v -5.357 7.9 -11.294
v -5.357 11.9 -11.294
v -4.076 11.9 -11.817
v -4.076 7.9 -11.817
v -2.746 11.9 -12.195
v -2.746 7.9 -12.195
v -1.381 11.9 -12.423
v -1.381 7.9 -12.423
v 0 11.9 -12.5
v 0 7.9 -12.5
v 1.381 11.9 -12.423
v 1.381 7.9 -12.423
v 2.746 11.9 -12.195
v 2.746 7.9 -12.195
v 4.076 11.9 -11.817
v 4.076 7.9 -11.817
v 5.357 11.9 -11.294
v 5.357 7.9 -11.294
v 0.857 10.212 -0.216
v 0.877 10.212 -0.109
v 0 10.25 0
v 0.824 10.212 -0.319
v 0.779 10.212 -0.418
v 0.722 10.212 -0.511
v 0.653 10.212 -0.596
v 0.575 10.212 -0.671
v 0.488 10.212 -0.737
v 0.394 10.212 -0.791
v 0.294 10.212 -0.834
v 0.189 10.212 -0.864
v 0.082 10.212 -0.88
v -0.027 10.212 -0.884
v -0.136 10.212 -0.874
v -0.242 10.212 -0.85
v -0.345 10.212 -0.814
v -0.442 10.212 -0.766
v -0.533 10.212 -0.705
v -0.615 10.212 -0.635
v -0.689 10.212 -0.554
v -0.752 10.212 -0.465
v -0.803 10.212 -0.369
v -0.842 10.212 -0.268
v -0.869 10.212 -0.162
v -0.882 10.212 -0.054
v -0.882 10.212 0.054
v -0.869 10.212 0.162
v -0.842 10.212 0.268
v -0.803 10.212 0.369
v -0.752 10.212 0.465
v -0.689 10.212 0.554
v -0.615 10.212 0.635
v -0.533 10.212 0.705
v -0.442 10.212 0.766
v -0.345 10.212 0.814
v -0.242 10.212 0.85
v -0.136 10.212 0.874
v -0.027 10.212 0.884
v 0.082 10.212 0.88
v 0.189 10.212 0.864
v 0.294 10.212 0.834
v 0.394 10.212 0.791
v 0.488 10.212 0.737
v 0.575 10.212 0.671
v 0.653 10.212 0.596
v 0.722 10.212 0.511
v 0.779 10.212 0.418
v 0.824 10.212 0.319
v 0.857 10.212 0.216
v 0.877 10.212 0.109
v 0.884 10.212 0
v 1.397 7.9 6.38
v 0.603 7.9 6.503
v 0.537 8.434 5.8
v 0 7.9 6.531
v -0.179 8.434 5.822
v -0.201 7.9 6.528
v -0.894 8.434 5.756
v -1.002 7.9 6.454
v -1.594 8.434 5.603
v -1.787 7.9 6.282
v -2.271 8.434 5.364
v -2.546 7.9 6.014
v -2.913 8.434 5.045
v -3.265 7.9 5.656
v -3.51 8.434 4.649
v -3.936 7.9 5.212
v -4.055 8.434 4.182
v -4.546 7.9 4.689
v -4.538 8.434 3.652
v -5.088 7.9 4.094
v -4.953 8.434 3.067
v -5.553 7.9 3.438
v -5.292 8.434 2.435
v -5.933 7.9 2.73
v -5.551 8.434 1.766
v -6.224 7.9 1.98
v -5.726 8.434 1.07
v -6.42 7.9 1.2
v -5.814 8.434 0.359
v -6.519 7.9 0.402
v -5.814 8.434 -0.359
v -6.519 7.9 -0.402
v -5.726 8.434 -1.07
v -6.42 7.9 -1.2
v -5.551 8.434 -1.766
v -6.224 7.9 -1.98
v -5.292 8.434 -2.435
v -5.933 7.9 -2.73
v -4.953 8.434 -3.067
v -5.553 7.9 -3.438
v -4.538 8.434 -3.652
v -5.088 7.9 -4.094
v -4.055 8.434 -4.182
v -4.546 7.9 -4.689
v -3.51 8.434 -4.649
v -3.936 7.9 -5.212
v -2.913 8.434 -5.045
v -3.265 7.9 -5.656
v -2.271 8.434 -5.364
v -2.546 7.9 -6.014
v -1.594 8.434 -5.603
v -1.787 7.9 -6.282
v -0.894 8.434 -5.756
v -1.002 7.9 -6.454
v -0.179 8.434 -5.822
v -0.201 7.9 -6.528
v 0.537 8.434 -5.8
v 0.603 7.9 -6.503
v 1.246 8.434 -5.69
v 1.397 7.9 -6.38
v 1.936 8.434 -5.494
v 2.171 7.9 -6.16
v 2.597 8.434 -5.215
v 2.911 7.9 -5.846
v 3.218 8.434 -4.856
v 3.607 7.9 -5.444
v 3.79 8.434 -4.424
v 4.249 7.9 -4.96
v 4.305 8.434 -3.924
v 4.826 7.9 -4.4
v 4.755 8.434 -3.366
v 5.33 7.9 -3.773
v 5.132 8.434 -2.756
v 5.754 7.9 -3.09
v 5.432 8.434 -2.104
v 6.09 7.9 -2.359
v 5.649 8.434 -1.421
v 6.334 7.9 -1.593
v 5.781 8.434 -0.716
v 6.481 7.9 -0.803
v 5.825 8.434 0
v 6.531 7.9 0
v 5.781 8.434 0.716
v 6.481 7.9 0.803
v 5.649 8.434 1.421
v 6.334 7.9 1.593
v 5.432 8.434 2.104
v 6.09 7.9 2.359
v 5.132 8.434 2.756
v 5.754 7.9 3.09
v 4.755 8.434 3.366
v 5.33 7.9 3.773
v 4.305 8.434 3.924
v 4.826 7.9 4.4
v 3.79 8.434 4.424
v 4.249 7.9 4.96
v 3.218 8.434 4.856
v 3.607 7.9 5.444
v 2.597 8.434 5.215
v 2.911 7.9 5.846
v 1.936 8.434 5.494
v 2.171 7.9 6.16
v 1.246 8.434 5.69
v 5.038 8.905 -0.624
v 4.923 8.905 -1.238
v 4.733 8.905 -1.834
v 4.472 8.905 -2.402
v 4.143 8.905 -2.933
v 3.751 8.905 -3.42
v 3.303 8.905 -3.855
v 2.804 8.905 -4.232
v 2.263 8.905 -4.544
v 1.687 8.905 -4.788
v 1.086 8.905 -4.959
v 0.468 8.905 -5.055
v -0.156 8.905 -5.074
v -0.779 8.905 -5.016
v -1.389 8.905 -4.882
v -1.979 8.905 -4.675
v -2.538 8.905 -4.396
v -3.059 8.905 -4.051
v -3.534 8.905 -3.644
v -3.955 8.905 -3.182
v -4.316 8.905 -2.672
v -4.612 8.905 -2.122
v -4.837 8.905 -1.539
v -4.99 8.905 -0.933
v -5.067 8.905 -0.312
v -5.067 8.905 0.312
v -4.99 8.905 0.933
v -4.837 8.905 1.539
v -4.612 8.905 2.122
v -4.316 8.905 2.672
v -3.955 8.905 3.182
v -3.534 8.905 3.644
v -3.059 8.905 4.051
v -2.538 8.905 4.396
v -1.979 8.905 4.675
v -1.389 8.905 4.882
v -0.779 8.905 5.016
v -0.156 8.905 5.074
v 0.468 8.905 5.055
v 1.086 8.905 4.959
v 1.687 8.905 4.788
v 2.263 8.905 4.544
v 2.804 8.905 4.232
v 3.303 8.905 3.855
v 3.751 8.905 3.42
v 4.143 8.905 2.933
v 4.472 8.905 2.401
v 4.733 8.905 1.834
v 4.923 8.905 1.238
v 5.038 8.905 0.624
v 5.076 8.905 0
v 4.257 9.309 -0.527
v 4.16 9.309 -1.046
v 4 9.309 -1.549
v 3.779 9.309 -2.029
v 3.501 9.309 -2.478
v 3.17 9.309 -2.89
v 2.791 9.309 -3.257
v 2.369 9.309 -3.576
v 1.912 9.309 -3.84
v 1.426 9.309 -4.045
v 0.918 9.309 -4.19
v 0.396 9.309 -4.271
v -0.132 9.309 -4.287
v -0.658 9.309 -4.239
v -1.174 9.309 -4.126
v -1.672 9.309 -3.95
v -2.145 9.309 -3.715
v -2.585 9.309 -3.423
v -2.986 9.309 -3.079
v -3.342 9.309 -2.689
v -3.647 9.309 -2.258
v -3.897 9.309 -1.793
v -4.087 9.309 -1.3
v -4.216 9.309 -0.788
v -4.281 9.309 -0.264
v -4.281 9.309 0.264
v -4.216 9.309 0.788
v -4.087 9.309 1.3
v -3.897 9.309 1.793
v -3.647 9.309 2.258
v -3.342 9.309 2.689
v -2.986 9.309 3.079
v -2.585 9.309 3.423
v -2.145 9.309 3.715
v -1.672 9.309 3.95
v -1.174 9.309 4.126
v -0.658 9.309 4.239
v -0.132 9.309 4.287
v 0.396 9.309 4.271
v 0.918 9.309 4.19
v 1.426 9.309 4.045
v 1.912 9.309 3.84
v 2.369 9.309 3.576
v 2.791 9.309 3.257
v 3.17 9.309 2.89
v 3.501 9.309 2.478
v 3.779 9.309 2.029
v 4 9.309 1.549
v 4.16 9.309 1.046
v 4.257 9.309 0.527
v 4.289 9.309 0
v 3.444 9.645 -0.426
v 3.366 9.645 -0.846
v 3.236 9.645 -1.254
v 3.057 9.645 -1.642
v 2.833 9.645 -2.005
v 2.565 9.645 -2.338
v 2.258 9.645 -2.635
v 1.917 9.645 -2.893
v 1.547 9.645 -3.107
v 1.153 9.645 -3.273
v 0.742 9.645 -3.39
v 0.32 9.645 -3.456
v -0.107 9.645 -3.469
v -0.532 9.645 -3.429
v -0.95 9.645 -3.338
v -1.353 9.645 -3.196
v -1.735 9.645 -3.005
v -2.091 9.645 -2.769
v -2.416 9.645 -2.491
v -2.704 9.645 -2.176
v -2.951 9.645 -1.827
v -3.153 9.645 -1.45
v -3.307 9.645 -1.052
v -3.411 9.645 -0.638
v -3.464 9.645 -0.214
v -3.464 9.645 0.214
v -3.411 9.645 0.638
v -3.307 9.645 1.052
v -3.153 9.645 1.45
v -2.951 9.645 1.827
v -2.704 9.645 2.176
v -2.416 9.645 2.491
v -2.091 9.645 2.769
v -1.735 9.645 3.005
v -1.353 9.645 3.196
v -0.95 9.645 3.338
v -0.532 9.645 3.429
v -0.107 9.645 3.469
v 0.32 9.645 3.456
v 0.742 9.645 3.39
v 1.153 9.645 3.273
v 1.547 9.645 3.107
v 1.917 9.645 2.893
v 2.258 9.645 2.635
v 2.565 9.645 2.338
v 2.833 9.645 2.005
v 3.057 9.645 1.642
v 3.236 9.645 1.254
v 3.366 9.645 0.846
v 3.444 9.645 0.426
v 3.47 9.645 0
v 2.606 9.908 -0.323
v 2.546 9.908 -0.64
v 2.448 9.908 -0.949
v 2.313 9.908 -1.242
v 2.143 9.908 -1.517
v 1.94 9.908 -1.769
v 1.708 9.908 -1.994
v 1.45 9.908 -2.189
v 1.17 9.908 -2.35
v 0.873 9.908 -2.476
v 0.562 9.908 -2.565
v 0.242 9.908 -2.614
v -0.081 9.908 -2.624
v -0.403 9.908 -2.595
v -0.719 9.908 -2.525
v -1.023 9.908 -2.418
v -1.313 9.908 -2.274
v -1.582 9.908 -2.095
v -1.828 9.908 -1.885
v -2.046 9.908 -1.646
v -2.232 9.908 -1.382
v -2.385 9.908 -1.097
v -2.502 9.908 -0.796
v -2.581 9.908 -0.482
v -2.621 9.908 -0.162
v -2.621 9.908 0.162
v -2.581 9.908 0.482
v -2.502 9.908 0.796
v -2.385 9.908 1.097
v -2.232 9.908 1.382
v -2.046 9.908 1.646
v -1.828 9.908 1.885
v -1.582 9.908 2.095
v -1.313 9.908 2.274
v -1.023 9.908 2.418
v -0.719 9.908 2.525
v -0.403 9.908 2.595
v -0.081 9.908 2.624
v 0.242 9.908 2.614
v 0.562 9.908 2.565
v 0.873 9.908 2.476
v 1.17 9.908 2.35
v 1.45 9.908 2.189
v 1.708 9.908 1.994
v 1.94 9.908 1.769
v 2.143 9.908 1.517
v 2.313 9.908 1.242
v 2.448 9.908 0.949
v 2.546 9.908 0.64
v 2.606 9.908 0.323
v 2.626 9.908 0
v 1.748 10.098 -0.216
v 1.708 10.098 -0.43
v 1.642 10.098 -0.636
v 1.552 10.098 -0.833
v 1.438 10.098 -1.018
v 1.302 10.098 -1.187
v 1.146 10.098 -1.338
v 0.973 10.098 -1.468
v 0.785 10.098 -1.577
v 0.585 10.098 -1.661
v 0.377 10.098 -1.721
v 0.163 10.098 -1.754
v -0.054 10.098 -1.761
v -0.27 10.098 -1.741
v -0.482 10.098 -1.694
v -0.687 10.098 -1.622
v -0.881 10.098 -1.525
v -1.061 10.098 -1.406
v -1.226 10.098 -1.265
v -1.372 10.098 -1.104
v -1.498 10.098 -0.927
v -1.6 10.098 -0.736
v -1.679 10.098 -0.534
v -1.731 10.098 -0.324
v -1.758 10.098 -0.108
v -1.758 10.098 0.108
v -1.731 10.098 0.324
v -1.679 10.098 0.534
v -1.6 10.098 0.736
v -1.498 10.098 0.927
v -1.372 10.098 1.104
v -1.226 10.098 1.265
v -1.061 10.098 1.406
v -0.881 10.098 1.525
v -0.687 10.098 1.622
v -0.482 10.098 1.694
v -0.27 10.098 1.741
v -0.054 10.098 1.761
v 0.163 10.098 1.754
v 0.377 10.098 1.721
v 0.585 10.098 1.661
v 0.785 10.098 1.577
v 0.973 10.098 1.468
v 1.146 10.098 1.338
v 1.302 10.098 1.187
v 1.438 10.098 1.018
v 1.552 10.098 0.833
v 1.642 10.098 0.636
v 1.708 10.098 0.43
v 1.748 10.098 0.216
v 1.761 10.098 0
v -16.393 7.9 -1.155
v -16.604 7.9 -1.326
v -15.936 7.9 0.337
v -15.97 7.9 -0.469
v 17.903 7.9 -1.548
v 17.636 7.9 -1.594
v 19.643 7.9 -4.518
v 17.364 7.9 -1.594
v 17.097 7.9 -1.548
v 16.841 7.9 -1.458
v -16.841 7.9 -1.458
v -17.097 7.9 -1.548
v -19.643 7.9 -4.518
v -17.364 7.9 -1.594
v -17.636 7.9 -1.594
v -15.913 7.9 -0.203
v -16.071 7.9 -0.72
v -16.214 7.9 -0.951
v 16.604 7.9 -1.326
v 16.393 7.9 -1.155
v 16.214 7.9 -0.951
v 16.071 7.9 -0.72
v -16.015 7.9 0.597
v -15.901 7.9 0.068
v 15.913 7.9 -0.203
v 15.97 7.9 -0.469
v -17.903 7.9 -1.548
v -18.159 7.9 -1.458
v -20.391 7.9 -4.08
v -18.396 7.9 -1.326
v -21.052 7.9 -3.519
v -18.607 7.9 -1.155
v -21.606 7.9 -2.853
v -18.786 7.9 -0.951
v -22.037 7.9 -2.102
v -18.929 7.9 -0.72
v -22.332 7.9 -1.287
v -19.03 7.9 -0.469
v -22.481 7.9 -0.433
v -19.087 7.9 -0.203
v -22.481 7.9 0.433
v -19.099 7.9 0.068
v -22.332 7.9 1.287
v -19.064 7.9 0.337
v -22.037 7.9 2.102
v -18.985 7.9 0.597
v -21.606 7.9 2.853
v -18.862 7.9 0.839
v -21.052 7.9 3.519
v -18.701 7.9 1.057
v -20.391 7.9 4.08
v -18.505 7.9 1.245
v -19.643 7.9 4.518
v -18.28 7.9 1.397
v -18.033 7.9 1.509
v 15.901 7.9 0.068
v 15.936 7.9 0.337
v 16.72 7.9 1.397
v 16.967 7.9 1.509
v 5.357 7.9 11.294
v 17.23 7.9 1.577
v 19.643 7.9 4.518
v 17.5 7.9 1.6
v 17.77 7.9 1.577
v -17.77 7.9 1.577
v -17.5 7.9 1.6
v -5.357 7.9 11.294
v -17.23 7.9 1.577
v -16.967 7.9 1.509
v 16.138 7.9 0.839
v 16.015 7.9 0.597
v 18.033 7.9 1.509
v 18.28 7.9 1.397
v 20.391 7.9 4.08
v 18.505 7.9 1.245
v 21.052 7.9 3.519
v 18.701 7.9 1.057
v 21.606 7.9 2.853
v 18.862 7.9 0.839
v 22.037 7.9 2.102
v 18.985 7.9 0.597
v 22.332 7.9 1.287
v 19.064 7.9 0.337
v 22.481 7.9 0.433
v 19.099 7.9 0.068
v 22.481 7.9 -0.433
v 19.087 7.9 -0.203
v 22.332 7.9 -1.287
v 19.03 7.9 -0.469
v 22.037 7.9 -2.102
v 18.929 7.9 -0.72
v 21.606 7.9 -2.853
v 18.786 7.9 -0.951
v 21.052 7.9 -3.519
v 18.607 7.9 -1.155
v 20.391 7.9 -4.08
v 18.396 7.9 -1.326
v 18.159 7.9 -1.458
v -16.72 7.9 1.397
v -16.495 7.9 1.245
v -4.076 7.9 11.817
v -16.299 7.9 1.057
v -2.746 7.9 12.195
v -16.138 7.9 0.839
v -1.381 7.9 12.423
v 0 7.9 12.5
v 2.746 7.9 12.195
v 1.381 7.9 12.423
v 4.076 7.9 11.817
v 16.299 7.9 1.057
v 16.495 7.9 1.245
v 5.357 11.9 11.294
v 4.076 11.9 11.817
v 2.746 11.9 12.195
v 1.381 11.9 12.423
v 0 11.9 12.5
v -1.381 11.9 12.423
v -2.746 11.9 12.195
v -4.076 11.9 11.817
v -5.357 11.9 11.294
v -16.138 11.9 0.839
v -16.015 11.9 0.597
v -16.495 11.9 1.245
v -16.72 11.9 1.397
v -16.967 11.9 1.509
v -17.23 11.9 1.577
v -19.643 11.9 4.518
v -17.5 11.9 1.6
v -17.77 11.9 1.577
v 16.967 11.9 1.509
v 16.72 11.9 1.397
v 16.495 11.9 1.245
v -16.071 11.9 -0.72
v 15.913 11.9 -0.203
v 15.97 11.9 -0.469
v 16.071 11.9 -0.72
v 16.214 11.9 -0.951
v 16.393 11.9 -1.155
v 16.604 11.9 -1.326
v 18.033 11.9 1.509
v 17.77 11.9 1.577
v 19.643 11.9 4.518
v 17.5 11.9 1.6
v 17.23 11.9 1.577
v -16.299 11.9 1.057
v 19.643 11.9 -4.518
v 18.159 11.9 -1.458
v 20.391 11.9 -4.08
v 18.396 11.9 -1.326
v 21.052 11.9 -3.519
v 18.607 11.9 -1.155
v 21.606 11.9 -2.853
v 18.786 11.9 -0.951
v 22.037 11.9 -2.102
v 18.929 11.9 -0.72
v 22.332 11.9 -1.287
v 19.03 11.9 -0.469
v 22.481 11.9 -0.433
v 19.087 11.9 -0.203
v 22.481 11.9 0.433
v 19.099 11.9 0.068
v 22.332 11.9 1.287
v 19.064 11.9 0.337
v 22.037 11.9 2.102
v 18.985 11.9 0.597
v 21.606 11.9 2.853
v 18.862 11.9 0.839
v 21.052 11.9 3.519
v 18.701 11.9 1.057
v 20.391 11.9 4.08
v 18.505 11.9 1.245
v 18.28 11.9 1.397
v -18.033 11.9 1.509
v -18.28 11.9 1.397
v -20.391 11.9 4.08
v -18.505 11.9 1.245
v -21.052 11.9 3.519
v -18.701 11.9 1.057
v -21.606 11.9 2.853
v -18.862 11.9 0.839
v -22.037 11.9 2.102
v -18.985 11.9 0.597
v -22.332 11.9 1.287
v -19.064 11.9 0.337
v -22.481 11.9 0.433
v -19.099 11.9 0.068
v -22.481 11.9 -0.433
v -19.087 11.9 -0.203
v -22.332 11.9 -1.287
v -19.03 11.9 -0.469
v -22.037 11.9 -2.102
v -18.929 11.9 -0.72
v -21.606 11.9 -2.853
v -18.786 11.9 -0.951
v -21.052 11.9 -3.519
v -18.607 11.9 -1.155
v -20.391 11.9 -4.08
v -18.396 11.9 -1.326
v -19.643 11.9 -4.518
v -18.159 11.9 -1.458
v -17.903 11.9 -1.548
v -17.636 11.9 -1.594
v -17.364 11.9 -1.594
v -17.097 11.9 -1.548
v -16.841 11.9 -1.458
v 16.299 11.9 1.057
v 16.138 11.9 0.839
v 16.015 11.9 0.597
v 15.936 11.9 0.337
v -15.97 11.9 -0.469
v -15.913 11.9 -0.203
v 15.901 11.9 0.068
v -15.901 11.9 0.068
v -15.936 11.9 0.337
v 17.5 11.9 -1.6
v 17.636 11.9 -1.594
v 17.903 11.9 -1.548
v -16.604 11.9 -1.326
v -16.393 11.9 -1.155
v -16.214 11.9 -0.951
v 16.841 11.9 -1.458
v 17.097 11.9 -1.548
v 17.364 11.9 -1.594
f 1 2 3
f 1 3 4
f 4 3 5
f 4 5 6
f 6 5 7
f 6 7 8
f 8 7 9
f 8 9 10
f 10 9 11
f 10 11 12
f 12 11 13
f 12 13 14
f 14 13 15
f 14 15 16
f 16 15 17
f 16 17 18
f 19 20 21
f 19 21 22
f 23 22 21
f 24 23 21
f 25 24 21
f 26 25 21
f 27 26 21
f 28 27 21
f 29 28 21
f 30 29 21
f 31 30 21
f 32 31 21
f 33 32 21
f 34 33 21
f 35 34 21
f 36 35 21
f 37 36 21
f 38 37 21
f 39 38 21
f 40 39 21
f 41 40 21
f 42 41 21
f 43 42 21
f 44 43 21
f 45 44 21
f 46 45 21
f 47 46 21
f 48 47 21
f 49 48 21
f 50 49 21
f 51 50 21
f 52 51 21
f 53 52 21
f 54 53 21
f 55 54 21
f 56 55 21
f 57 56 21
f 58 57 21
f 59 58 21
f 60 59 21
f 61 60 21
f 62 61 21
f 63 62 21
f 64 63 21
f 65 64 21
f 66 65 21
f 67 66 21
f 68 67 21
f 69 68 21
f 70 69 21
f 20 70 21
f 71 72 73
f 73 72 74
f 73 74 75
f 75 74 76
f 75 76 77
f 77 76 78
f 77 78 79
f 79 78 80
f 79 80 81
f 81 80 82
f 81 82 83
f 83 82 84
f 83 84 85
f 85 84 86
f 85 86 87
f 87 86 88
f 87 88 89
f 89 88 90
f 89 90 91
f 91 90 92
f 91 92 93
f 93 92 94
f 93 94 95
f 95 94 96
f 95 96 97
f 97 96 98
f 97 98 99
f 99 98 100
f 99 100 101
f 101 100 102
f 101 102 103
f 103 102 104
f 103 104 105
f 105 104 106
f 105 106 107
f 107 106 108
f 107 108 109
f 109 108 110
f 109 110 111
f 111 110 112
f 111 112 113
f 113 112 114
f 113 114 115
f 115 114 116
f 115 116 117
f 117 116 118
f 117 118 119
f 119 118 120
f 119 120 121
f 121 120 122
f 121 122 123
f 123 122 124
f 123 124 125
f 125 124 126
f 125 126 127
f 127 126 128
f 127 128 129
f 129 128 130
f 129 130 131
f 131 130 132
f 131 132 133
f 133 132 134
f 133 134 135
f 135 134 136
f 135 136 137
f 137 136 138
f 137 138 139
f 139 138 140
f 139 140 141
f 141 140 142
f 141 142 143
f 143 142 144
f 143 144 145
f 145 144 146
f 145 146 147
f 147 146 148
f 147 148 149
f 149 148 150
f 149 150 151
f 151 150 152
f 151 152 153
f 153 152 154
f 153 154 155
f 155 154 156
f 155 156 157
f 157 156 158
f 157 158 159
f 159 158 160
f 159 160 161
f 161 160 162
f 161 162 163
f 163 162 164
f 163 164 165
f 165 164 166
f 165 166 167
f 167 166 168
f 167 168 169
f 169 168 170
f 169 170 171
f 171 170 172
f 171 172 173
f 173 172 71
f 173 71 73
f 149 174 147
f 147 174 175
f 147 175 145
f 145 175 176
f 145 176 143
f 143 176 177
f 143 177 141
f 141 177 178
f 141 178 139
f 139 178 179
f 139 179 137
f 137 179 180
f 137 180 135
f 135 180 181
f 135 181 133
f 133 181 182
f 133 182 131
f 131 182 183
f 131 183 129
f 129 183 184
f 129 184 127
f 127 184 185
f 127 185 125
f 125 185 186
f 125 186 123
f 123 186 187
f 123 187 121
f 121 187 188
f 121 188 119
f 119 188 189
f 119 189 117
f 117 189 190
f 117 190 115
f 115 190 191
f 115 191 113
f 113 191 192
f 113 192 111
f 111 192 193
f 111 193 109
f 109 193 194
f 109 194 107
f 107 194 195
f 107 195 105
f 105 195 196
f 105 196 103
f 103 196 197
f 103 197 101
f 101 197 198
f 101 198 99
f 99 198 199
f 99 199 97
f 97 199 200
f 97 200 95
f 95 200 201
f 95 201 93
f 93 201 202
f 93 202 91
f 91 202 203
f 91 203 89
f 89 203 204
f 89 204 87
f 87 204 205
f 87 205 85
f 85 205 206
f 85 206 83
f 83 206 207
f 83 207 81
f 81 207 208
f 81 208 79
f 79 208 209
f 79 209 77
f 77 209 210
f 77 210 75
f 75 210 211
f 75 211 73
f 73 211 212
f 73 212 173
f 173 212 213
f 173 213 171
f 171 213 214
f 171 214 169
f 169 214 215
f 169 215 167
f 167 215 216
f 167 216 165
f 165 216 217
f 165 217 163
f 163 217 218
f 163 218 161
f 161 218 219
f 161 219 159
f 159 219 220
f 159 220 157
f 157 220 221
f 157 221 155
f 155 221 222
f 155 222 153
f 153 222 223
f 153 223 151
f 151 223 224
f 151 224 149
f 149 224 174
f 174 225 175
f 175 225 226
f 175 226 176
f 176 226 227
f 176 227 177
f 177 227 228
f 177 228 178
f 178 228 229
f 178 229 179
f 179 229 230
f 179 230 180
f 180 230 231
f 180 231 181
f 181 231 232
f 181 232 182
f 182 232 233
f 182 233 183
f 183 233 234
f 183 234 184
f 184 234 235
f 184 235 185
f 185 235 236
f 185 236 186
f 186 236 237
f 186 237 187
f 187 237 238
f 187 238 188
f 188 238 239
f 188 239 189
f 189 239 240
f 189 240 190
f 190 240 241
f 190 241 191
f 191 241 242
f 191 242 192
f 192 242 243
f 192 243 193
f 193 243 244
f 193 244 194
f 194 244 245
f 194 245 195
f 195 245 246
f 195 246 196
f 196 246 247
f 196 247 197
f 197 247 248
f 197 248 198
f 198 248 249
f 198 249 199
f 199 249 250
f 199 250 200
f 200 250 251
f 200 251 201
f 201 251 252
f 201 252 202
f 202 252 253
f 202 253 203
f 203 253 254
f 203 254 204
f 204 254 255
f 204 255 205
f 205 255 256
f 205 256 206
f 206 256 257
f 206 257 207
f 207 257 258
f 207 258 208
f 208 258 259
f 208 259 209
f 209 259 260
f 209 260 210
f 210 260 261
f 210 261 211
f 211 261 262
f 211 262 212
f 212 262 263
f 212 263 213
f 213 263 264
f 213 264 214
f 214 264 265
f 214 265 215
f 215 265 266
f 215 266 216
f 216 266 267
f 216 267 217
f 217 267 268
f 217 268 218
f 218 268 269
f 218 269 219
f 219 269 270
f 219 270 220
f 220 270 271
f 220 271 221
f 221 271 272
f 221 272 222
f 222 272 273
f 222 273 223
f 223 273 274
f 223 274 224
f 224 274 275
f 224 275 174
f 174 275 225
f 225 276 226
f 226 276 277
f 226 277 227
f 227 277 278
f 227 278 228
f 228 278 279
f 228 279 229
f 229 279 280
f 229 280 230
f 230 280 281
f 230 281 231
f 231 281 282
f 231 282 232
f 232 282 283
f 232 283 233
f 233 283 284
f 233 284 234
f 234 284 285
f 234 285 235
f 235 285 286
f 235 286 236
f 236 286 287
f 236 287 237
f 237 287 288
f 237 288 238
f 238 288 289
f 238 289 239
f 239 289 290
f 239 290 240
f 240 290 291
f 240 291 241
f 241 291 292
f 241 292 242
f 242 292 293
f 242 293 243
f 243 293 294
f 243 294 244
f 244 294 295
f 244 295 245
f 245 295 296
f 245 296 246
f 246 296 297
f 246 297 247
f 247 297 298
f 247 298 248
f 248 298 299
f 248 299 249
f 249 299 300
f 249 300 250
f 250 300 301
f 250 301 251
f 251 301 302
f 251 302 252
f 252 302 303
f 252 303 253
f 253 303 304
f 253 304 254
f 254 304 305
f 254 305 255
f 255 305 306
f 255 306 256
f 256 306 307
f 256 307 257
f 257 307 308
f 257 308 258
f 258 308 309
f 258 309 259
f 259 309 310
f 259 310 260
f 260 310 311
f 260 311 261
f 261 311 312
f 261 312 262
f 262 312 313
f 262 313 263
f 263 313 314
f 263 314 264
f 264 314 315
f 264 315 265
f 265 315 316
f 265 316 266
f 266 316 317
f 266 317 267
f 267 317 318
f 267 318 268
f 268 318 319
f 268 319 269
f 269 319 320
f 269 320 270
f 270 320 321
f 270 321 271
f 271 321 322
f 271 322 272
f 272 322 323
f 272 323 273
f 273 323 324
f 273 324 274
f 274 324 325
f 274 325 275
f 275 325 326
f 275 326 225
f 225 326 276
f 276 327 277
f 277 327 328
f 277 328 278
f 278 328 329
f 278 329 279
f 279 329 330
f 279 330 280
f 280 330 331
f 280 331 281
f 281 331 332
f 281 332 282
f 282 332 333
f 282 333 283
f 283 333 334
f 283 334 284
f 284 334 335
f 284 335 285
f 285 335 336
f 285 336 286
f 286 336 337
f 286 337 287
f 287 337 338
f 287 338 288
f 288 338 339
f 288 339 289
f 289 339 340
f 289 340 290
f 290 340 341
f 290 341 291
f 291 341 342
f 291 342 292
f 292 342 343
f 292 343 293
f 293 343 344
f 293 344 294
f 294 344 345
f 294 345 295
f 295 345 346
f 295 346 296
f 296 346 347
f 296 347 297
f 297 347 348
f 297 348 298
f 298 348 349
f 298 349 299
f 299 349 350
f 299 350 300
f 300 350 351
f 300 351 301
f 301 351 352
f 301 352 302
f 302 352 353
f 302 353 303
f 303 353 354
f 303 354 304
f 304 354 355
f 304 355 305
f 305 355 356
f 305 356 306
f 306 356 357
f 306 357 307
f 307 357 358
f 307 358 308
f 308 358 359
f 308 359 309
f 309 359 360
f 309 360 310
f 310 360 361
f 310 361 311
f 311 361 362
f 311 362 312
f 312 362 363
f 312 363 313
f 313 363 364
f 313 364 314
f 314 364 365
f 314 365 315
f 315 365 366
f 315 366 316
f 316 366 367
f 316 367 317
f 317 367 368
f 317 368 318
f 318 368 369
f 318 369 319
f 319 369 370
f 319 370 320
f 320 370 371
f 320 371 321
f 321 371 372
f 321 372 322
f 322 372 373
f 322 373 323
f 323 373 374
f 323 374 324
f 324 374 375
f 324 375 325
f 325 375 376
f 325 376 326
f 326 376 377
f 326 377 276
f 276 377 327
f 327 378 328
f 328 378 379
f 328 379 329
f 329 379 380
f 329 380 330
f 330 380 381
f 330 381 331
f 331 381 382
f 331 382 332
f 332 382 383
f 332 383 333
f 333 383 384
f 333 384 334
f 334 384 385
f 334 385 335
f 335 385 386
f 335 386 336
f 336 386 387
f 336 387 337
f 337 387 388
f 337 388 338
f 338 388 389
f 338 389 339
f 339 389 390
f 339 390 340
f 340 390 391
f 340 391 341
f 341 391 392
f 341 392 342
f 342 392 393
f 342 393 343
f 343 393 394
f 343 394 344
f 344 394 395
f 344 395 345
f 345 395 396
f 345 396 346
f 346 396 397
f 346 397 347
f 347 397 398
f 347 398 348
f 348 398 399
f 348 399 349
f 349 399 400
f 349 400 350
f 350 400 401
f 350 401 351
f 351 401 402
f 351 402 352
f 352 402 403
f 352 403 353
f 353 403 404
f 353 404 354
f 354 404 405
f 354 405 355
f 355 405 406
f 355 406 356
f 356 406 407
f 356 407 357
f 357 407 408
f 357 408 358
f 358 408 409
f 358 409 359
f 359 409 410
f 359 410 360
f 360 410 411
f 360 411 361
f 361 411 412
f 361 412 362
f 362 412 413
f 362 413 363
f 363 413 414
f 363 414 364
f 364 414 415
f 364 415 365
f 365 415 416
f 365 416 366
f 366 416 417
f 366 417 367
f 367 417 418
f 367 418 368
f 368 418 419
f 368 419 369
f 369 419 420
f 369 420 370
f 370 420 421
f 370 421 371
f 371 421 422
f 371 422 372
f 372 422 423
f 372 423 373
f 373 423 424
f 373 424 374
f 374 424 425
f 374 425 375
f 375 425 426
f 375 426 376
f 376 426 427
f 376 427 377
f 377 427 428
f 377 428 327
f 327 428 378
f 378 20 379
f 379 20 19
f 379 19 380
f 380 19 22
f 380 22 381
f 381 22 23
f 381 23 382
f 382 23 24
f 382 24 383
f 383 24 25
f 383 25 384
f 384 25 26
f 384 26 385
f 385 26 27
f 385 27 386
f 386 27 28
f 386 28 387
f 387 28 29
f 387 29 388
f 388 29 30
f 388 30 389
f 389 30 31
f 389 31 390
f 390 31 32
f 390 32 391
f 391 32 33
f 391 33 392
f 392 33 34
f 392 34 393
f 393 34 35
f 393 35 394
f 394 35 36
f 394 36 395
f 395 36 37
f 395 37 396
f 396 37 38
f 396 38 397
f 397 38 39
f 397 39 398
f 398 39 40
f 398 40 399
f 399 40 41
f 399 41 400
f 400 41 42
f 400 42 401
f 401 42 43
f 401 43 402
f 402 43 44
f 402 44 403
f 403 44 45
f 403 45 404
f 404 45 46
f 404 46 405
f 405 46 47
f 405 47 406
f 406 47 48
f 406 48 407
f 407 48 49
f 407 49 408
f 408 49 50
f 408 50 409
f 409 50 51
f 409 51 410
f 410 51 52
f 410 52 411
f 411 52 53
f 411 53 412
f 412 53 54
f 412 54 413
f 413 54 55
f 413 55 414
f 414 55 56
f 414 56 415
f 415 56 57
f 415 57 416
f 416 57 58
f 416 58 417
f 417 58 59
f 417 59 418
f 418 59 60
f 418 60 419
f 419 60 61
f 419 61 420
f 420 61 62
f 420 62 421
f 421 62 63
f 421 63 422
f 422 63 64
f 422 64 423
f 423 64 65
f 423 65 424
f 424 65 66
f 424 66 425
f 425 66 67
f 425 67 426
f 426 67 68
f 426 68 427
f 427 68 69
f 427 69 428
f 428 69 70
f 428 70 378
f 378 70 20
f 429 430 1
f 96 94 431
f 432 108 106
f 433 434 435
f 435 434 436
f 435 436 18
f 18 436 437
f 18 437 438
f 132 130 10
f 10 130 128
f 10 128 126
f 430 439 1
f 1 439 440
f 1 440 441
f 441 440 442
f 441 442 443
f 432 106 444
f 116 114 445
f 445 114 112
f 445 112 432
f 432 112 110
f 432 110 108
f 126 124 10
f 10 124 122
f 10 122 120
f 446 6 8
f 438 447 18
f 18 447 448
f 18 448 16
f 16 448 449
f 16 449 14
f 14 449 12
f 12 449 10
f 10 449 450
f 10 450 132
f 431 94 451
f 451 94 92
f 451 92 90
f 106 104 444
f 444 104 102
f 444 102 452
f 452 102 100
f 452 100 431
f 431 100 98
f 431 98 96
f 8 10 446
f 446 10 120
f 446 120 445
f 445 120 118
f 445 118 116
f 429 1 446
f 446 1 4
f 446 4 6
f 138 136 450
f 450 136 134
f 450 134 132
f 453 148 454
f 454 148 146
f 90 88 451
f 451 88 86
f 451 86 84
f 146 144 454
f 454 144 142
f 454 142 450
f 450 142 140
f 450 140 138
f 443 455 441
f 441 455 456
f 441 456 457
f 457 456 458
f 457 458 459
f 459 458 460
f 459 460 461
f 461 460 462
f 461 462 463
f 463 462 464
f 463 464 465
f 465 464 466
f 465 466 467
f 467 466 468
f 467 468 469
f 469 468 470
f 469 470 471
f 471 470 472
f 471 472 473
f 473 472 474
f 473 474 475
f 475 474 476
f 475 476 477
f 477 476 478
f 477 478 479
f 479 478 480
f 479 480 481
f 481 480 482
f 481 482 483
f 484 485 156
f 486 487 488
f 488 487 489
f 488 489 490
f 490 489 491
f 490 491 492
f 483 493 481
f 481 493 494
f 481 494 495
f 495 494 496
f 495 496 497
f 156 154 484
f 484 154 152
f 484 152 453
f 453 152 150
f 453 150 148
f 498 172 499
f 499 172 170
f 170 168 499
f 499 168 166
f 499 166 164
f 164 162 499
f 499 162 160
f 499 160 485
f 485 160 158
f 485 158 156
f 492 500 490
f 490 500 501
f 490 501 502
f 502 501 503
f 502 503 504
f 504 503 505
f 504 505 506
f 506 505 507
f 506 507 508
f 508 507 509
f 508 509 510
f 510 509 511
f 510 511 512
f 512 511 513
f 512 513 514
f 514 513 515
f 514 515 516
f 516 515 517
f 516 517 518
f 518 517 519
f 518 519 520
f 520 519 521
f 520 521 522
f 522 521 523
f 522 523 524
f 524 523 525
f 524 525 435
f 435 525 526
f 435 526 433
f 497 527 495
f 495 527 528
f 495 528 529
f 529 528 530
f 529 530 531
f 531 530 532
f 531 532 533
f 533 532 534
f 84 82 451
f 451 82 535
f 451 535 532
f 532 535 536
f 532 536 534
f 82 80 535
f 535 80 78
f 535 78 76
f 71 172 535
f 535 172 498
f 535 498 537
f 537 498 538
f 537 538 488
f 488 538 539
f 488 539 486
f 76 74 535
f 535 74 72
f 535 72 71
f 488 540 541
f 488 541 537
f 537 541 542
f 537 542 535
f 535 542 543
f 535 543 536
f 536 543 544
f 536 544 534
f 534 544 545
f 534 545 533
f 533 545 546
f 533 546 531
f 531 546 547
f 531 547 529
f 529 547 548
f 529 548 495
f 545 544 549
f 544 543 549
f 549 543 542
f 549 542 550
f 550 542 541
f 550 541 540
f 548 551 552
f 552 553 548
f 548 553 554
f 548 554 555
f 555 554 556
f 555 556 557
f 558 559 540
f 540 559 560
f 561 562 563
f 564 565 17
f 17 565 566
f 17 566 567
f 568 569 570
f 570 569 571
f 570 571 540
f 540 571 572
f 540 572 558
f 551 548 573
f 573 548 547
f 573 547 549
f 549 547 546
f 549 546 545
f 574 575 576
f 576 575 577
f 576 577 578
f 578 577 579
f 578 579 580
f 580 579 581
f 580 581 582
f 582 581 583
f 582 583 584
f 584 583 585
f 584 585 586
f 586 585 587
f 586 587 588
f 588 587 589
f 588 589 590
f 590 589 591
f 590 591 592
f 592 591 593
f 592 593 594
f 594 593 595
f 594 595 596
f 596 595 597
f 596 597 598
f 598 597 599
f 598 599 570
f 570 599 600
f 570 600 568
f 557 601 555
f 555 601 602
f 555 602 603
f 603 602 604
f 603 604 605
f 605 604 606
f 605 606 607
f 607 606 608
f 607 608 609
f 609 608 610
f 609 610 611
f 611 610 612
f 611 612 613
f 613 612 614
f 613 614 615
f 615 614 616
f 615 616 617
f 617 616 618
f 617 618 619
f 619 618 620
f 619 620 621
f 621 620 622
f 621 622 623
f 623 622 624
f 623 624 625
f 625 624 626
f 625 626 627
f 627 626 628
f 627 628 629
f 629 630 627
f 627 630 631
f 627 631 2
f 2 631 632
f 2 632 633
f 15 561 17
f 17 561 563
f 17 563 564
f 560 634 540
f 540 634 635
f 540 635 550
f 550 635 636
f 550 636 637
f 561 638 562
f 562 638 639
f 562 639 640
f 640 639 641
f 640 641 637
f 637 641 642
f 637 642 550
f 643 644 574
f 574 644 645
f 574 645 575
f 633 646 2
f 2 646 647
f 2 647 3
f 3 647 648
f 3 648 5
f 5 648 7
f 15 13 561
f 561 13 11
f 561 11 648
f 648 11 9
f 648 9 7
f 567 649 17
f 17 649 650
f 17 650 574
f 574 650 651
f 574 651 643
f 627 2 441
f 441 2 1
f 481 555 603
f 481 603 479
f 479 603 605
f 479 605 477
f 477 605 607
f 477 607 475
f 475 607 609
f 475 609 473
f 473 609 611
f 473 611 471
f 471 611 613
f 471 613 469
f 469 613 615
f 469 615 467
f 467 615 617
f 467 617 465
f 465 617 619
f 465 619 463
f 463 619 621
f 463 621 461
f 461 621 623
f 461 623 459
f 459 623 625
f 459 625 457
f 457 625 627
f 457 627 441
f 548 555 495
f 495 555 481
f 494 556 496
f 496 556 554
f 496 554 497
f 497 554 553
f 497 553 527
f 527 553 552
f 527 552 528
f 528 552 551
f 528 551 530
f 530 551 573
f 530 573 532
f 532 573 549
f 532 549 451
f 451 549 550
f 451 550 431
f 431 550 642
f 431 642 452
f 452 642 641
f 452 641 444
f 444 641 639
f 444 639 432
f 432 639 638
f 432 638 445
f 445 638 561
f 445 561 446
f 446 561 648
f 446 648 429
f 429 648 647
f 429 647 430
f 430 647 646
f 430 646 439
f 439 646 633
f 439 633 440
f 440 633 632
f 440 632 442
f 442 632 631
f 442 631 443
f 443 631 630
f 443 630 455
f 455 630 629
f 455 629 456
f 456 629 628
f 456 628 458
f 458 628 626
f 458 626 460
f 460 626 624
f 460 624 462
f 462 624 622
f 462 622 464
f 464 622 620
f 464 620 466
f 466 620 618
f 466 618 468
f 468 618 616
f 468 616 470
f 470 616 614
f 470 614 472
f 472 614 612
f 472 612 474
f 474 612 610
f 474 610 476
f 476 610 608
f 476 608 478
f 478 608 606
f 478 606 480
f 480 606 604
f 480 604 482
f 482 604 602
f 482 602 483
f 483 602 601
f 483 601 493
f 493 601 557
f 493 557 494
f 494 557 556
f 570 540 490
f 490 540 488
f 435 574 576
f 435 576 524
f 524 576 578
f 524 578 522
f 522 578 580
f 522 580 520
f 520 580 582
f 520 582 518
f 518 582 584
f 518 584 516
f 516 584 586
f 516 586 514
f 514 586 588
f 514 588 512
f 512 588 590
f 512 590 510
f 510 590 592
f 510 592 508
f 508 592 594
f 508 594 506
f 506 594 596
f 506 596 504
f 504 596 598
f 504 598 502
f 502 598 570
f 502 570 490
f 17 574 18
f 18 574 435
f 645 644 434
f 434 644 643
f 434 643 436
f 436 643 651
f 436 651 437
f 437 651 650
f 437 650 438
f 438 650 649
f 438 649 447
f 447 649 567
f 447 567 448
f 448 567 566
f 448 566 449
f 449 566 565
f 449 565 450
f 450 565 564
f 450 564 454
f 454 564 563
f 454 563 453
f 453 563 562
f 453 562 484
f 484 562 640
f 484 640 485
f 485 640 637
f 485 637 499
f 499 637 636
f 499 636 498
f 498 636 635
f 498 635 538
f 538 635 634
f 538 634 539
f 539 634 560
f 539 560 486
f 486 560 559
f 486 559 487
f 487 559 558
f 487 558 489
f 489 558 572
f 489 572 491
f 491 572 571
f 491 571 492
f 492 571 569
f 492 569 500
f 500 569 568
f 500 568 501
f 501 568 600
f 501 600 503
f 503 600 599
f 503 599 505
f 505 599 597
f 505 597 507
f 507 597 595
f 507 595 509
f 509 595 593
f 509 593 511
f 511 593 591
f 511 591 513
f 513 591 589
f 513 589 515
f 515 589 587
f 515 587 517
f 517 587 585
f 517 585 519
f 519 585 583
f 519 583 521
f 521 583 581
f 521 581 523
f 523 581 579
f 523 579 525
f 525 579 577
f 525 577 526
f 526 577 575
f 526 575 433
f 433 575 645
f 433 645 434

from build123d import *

# Parameters (mm, degrees)
SKETCH2_R           = 1.6
BOSS_EXTRUDE1_DEPTH = 4


with BuildPart() as part:
    # Sketch1 → Revolve2 (revolve)
    with BuildSketch(Plane.XY):
        with BuildLine():
            ThreePointArc((6.530888148, 7.9), (3.470410639, 9.644622854), (0, 10.25))
            Line((0, 10.25), (0, 11.9))
            Line((0, 11.9), (12.5, 11.9))
            Line((12.5, 11.9), (12.5, 7.9))
            Line((12.5, 7.9), (6.530888148, 7.9))
        make_face()
    revolve(axis=Axis((0, 12.495, 0), (0, -1, 0)))

    # Sketch2 → Boss-Extrude1 (add)
    with BuildSketch(Plane(origin=(0, 11.9, 0), x_dir=(1, 0, 0), z_dir=(0, 1, 0))):
        with BuildLine():
            Line((-5.357142857, 11.293848786), (-19.642857143, 4.517539515))
            ThreePointArc((-19.642857143, 4.517539515), (-22.5, 0), (-19.642857143, -4.517539515))
            Line((-19.642857143, -4.517539515), (-5.357142857, -11.293848786))
            ThreePointArc((-5.357142857, -11.293848786), (-12.5, 0), (-5.357142857, 11.293848786))
        make_face()
        with Locations((-17.5, 0)):
            Circle(SKETCH2_R, mode=Mode.SUBTRACT)
        with BuildLine():
            Line((5.357142857, -11.293848786), (19.642857143, -4.517539515))
            ThreePointArc((19.642857143, -4.517539515), (22.5, 0), (19.642857143, 4.517539515))
            Line((19.642857143, 4.517539515), (5.357142857, 11.293848786))
            ThreePointArc((5.357142857, 11.293848786), (12.5, 0), (5.357142857, -11.293848786))
        make_face()
        with Locations((17.5, 0)):
            Circle(SKETCH2_R, mode=Mode.SUBTRACT)
    extrude(amount=-BOSS_EXTRUDE1_DEPTH)


solid = part.part
